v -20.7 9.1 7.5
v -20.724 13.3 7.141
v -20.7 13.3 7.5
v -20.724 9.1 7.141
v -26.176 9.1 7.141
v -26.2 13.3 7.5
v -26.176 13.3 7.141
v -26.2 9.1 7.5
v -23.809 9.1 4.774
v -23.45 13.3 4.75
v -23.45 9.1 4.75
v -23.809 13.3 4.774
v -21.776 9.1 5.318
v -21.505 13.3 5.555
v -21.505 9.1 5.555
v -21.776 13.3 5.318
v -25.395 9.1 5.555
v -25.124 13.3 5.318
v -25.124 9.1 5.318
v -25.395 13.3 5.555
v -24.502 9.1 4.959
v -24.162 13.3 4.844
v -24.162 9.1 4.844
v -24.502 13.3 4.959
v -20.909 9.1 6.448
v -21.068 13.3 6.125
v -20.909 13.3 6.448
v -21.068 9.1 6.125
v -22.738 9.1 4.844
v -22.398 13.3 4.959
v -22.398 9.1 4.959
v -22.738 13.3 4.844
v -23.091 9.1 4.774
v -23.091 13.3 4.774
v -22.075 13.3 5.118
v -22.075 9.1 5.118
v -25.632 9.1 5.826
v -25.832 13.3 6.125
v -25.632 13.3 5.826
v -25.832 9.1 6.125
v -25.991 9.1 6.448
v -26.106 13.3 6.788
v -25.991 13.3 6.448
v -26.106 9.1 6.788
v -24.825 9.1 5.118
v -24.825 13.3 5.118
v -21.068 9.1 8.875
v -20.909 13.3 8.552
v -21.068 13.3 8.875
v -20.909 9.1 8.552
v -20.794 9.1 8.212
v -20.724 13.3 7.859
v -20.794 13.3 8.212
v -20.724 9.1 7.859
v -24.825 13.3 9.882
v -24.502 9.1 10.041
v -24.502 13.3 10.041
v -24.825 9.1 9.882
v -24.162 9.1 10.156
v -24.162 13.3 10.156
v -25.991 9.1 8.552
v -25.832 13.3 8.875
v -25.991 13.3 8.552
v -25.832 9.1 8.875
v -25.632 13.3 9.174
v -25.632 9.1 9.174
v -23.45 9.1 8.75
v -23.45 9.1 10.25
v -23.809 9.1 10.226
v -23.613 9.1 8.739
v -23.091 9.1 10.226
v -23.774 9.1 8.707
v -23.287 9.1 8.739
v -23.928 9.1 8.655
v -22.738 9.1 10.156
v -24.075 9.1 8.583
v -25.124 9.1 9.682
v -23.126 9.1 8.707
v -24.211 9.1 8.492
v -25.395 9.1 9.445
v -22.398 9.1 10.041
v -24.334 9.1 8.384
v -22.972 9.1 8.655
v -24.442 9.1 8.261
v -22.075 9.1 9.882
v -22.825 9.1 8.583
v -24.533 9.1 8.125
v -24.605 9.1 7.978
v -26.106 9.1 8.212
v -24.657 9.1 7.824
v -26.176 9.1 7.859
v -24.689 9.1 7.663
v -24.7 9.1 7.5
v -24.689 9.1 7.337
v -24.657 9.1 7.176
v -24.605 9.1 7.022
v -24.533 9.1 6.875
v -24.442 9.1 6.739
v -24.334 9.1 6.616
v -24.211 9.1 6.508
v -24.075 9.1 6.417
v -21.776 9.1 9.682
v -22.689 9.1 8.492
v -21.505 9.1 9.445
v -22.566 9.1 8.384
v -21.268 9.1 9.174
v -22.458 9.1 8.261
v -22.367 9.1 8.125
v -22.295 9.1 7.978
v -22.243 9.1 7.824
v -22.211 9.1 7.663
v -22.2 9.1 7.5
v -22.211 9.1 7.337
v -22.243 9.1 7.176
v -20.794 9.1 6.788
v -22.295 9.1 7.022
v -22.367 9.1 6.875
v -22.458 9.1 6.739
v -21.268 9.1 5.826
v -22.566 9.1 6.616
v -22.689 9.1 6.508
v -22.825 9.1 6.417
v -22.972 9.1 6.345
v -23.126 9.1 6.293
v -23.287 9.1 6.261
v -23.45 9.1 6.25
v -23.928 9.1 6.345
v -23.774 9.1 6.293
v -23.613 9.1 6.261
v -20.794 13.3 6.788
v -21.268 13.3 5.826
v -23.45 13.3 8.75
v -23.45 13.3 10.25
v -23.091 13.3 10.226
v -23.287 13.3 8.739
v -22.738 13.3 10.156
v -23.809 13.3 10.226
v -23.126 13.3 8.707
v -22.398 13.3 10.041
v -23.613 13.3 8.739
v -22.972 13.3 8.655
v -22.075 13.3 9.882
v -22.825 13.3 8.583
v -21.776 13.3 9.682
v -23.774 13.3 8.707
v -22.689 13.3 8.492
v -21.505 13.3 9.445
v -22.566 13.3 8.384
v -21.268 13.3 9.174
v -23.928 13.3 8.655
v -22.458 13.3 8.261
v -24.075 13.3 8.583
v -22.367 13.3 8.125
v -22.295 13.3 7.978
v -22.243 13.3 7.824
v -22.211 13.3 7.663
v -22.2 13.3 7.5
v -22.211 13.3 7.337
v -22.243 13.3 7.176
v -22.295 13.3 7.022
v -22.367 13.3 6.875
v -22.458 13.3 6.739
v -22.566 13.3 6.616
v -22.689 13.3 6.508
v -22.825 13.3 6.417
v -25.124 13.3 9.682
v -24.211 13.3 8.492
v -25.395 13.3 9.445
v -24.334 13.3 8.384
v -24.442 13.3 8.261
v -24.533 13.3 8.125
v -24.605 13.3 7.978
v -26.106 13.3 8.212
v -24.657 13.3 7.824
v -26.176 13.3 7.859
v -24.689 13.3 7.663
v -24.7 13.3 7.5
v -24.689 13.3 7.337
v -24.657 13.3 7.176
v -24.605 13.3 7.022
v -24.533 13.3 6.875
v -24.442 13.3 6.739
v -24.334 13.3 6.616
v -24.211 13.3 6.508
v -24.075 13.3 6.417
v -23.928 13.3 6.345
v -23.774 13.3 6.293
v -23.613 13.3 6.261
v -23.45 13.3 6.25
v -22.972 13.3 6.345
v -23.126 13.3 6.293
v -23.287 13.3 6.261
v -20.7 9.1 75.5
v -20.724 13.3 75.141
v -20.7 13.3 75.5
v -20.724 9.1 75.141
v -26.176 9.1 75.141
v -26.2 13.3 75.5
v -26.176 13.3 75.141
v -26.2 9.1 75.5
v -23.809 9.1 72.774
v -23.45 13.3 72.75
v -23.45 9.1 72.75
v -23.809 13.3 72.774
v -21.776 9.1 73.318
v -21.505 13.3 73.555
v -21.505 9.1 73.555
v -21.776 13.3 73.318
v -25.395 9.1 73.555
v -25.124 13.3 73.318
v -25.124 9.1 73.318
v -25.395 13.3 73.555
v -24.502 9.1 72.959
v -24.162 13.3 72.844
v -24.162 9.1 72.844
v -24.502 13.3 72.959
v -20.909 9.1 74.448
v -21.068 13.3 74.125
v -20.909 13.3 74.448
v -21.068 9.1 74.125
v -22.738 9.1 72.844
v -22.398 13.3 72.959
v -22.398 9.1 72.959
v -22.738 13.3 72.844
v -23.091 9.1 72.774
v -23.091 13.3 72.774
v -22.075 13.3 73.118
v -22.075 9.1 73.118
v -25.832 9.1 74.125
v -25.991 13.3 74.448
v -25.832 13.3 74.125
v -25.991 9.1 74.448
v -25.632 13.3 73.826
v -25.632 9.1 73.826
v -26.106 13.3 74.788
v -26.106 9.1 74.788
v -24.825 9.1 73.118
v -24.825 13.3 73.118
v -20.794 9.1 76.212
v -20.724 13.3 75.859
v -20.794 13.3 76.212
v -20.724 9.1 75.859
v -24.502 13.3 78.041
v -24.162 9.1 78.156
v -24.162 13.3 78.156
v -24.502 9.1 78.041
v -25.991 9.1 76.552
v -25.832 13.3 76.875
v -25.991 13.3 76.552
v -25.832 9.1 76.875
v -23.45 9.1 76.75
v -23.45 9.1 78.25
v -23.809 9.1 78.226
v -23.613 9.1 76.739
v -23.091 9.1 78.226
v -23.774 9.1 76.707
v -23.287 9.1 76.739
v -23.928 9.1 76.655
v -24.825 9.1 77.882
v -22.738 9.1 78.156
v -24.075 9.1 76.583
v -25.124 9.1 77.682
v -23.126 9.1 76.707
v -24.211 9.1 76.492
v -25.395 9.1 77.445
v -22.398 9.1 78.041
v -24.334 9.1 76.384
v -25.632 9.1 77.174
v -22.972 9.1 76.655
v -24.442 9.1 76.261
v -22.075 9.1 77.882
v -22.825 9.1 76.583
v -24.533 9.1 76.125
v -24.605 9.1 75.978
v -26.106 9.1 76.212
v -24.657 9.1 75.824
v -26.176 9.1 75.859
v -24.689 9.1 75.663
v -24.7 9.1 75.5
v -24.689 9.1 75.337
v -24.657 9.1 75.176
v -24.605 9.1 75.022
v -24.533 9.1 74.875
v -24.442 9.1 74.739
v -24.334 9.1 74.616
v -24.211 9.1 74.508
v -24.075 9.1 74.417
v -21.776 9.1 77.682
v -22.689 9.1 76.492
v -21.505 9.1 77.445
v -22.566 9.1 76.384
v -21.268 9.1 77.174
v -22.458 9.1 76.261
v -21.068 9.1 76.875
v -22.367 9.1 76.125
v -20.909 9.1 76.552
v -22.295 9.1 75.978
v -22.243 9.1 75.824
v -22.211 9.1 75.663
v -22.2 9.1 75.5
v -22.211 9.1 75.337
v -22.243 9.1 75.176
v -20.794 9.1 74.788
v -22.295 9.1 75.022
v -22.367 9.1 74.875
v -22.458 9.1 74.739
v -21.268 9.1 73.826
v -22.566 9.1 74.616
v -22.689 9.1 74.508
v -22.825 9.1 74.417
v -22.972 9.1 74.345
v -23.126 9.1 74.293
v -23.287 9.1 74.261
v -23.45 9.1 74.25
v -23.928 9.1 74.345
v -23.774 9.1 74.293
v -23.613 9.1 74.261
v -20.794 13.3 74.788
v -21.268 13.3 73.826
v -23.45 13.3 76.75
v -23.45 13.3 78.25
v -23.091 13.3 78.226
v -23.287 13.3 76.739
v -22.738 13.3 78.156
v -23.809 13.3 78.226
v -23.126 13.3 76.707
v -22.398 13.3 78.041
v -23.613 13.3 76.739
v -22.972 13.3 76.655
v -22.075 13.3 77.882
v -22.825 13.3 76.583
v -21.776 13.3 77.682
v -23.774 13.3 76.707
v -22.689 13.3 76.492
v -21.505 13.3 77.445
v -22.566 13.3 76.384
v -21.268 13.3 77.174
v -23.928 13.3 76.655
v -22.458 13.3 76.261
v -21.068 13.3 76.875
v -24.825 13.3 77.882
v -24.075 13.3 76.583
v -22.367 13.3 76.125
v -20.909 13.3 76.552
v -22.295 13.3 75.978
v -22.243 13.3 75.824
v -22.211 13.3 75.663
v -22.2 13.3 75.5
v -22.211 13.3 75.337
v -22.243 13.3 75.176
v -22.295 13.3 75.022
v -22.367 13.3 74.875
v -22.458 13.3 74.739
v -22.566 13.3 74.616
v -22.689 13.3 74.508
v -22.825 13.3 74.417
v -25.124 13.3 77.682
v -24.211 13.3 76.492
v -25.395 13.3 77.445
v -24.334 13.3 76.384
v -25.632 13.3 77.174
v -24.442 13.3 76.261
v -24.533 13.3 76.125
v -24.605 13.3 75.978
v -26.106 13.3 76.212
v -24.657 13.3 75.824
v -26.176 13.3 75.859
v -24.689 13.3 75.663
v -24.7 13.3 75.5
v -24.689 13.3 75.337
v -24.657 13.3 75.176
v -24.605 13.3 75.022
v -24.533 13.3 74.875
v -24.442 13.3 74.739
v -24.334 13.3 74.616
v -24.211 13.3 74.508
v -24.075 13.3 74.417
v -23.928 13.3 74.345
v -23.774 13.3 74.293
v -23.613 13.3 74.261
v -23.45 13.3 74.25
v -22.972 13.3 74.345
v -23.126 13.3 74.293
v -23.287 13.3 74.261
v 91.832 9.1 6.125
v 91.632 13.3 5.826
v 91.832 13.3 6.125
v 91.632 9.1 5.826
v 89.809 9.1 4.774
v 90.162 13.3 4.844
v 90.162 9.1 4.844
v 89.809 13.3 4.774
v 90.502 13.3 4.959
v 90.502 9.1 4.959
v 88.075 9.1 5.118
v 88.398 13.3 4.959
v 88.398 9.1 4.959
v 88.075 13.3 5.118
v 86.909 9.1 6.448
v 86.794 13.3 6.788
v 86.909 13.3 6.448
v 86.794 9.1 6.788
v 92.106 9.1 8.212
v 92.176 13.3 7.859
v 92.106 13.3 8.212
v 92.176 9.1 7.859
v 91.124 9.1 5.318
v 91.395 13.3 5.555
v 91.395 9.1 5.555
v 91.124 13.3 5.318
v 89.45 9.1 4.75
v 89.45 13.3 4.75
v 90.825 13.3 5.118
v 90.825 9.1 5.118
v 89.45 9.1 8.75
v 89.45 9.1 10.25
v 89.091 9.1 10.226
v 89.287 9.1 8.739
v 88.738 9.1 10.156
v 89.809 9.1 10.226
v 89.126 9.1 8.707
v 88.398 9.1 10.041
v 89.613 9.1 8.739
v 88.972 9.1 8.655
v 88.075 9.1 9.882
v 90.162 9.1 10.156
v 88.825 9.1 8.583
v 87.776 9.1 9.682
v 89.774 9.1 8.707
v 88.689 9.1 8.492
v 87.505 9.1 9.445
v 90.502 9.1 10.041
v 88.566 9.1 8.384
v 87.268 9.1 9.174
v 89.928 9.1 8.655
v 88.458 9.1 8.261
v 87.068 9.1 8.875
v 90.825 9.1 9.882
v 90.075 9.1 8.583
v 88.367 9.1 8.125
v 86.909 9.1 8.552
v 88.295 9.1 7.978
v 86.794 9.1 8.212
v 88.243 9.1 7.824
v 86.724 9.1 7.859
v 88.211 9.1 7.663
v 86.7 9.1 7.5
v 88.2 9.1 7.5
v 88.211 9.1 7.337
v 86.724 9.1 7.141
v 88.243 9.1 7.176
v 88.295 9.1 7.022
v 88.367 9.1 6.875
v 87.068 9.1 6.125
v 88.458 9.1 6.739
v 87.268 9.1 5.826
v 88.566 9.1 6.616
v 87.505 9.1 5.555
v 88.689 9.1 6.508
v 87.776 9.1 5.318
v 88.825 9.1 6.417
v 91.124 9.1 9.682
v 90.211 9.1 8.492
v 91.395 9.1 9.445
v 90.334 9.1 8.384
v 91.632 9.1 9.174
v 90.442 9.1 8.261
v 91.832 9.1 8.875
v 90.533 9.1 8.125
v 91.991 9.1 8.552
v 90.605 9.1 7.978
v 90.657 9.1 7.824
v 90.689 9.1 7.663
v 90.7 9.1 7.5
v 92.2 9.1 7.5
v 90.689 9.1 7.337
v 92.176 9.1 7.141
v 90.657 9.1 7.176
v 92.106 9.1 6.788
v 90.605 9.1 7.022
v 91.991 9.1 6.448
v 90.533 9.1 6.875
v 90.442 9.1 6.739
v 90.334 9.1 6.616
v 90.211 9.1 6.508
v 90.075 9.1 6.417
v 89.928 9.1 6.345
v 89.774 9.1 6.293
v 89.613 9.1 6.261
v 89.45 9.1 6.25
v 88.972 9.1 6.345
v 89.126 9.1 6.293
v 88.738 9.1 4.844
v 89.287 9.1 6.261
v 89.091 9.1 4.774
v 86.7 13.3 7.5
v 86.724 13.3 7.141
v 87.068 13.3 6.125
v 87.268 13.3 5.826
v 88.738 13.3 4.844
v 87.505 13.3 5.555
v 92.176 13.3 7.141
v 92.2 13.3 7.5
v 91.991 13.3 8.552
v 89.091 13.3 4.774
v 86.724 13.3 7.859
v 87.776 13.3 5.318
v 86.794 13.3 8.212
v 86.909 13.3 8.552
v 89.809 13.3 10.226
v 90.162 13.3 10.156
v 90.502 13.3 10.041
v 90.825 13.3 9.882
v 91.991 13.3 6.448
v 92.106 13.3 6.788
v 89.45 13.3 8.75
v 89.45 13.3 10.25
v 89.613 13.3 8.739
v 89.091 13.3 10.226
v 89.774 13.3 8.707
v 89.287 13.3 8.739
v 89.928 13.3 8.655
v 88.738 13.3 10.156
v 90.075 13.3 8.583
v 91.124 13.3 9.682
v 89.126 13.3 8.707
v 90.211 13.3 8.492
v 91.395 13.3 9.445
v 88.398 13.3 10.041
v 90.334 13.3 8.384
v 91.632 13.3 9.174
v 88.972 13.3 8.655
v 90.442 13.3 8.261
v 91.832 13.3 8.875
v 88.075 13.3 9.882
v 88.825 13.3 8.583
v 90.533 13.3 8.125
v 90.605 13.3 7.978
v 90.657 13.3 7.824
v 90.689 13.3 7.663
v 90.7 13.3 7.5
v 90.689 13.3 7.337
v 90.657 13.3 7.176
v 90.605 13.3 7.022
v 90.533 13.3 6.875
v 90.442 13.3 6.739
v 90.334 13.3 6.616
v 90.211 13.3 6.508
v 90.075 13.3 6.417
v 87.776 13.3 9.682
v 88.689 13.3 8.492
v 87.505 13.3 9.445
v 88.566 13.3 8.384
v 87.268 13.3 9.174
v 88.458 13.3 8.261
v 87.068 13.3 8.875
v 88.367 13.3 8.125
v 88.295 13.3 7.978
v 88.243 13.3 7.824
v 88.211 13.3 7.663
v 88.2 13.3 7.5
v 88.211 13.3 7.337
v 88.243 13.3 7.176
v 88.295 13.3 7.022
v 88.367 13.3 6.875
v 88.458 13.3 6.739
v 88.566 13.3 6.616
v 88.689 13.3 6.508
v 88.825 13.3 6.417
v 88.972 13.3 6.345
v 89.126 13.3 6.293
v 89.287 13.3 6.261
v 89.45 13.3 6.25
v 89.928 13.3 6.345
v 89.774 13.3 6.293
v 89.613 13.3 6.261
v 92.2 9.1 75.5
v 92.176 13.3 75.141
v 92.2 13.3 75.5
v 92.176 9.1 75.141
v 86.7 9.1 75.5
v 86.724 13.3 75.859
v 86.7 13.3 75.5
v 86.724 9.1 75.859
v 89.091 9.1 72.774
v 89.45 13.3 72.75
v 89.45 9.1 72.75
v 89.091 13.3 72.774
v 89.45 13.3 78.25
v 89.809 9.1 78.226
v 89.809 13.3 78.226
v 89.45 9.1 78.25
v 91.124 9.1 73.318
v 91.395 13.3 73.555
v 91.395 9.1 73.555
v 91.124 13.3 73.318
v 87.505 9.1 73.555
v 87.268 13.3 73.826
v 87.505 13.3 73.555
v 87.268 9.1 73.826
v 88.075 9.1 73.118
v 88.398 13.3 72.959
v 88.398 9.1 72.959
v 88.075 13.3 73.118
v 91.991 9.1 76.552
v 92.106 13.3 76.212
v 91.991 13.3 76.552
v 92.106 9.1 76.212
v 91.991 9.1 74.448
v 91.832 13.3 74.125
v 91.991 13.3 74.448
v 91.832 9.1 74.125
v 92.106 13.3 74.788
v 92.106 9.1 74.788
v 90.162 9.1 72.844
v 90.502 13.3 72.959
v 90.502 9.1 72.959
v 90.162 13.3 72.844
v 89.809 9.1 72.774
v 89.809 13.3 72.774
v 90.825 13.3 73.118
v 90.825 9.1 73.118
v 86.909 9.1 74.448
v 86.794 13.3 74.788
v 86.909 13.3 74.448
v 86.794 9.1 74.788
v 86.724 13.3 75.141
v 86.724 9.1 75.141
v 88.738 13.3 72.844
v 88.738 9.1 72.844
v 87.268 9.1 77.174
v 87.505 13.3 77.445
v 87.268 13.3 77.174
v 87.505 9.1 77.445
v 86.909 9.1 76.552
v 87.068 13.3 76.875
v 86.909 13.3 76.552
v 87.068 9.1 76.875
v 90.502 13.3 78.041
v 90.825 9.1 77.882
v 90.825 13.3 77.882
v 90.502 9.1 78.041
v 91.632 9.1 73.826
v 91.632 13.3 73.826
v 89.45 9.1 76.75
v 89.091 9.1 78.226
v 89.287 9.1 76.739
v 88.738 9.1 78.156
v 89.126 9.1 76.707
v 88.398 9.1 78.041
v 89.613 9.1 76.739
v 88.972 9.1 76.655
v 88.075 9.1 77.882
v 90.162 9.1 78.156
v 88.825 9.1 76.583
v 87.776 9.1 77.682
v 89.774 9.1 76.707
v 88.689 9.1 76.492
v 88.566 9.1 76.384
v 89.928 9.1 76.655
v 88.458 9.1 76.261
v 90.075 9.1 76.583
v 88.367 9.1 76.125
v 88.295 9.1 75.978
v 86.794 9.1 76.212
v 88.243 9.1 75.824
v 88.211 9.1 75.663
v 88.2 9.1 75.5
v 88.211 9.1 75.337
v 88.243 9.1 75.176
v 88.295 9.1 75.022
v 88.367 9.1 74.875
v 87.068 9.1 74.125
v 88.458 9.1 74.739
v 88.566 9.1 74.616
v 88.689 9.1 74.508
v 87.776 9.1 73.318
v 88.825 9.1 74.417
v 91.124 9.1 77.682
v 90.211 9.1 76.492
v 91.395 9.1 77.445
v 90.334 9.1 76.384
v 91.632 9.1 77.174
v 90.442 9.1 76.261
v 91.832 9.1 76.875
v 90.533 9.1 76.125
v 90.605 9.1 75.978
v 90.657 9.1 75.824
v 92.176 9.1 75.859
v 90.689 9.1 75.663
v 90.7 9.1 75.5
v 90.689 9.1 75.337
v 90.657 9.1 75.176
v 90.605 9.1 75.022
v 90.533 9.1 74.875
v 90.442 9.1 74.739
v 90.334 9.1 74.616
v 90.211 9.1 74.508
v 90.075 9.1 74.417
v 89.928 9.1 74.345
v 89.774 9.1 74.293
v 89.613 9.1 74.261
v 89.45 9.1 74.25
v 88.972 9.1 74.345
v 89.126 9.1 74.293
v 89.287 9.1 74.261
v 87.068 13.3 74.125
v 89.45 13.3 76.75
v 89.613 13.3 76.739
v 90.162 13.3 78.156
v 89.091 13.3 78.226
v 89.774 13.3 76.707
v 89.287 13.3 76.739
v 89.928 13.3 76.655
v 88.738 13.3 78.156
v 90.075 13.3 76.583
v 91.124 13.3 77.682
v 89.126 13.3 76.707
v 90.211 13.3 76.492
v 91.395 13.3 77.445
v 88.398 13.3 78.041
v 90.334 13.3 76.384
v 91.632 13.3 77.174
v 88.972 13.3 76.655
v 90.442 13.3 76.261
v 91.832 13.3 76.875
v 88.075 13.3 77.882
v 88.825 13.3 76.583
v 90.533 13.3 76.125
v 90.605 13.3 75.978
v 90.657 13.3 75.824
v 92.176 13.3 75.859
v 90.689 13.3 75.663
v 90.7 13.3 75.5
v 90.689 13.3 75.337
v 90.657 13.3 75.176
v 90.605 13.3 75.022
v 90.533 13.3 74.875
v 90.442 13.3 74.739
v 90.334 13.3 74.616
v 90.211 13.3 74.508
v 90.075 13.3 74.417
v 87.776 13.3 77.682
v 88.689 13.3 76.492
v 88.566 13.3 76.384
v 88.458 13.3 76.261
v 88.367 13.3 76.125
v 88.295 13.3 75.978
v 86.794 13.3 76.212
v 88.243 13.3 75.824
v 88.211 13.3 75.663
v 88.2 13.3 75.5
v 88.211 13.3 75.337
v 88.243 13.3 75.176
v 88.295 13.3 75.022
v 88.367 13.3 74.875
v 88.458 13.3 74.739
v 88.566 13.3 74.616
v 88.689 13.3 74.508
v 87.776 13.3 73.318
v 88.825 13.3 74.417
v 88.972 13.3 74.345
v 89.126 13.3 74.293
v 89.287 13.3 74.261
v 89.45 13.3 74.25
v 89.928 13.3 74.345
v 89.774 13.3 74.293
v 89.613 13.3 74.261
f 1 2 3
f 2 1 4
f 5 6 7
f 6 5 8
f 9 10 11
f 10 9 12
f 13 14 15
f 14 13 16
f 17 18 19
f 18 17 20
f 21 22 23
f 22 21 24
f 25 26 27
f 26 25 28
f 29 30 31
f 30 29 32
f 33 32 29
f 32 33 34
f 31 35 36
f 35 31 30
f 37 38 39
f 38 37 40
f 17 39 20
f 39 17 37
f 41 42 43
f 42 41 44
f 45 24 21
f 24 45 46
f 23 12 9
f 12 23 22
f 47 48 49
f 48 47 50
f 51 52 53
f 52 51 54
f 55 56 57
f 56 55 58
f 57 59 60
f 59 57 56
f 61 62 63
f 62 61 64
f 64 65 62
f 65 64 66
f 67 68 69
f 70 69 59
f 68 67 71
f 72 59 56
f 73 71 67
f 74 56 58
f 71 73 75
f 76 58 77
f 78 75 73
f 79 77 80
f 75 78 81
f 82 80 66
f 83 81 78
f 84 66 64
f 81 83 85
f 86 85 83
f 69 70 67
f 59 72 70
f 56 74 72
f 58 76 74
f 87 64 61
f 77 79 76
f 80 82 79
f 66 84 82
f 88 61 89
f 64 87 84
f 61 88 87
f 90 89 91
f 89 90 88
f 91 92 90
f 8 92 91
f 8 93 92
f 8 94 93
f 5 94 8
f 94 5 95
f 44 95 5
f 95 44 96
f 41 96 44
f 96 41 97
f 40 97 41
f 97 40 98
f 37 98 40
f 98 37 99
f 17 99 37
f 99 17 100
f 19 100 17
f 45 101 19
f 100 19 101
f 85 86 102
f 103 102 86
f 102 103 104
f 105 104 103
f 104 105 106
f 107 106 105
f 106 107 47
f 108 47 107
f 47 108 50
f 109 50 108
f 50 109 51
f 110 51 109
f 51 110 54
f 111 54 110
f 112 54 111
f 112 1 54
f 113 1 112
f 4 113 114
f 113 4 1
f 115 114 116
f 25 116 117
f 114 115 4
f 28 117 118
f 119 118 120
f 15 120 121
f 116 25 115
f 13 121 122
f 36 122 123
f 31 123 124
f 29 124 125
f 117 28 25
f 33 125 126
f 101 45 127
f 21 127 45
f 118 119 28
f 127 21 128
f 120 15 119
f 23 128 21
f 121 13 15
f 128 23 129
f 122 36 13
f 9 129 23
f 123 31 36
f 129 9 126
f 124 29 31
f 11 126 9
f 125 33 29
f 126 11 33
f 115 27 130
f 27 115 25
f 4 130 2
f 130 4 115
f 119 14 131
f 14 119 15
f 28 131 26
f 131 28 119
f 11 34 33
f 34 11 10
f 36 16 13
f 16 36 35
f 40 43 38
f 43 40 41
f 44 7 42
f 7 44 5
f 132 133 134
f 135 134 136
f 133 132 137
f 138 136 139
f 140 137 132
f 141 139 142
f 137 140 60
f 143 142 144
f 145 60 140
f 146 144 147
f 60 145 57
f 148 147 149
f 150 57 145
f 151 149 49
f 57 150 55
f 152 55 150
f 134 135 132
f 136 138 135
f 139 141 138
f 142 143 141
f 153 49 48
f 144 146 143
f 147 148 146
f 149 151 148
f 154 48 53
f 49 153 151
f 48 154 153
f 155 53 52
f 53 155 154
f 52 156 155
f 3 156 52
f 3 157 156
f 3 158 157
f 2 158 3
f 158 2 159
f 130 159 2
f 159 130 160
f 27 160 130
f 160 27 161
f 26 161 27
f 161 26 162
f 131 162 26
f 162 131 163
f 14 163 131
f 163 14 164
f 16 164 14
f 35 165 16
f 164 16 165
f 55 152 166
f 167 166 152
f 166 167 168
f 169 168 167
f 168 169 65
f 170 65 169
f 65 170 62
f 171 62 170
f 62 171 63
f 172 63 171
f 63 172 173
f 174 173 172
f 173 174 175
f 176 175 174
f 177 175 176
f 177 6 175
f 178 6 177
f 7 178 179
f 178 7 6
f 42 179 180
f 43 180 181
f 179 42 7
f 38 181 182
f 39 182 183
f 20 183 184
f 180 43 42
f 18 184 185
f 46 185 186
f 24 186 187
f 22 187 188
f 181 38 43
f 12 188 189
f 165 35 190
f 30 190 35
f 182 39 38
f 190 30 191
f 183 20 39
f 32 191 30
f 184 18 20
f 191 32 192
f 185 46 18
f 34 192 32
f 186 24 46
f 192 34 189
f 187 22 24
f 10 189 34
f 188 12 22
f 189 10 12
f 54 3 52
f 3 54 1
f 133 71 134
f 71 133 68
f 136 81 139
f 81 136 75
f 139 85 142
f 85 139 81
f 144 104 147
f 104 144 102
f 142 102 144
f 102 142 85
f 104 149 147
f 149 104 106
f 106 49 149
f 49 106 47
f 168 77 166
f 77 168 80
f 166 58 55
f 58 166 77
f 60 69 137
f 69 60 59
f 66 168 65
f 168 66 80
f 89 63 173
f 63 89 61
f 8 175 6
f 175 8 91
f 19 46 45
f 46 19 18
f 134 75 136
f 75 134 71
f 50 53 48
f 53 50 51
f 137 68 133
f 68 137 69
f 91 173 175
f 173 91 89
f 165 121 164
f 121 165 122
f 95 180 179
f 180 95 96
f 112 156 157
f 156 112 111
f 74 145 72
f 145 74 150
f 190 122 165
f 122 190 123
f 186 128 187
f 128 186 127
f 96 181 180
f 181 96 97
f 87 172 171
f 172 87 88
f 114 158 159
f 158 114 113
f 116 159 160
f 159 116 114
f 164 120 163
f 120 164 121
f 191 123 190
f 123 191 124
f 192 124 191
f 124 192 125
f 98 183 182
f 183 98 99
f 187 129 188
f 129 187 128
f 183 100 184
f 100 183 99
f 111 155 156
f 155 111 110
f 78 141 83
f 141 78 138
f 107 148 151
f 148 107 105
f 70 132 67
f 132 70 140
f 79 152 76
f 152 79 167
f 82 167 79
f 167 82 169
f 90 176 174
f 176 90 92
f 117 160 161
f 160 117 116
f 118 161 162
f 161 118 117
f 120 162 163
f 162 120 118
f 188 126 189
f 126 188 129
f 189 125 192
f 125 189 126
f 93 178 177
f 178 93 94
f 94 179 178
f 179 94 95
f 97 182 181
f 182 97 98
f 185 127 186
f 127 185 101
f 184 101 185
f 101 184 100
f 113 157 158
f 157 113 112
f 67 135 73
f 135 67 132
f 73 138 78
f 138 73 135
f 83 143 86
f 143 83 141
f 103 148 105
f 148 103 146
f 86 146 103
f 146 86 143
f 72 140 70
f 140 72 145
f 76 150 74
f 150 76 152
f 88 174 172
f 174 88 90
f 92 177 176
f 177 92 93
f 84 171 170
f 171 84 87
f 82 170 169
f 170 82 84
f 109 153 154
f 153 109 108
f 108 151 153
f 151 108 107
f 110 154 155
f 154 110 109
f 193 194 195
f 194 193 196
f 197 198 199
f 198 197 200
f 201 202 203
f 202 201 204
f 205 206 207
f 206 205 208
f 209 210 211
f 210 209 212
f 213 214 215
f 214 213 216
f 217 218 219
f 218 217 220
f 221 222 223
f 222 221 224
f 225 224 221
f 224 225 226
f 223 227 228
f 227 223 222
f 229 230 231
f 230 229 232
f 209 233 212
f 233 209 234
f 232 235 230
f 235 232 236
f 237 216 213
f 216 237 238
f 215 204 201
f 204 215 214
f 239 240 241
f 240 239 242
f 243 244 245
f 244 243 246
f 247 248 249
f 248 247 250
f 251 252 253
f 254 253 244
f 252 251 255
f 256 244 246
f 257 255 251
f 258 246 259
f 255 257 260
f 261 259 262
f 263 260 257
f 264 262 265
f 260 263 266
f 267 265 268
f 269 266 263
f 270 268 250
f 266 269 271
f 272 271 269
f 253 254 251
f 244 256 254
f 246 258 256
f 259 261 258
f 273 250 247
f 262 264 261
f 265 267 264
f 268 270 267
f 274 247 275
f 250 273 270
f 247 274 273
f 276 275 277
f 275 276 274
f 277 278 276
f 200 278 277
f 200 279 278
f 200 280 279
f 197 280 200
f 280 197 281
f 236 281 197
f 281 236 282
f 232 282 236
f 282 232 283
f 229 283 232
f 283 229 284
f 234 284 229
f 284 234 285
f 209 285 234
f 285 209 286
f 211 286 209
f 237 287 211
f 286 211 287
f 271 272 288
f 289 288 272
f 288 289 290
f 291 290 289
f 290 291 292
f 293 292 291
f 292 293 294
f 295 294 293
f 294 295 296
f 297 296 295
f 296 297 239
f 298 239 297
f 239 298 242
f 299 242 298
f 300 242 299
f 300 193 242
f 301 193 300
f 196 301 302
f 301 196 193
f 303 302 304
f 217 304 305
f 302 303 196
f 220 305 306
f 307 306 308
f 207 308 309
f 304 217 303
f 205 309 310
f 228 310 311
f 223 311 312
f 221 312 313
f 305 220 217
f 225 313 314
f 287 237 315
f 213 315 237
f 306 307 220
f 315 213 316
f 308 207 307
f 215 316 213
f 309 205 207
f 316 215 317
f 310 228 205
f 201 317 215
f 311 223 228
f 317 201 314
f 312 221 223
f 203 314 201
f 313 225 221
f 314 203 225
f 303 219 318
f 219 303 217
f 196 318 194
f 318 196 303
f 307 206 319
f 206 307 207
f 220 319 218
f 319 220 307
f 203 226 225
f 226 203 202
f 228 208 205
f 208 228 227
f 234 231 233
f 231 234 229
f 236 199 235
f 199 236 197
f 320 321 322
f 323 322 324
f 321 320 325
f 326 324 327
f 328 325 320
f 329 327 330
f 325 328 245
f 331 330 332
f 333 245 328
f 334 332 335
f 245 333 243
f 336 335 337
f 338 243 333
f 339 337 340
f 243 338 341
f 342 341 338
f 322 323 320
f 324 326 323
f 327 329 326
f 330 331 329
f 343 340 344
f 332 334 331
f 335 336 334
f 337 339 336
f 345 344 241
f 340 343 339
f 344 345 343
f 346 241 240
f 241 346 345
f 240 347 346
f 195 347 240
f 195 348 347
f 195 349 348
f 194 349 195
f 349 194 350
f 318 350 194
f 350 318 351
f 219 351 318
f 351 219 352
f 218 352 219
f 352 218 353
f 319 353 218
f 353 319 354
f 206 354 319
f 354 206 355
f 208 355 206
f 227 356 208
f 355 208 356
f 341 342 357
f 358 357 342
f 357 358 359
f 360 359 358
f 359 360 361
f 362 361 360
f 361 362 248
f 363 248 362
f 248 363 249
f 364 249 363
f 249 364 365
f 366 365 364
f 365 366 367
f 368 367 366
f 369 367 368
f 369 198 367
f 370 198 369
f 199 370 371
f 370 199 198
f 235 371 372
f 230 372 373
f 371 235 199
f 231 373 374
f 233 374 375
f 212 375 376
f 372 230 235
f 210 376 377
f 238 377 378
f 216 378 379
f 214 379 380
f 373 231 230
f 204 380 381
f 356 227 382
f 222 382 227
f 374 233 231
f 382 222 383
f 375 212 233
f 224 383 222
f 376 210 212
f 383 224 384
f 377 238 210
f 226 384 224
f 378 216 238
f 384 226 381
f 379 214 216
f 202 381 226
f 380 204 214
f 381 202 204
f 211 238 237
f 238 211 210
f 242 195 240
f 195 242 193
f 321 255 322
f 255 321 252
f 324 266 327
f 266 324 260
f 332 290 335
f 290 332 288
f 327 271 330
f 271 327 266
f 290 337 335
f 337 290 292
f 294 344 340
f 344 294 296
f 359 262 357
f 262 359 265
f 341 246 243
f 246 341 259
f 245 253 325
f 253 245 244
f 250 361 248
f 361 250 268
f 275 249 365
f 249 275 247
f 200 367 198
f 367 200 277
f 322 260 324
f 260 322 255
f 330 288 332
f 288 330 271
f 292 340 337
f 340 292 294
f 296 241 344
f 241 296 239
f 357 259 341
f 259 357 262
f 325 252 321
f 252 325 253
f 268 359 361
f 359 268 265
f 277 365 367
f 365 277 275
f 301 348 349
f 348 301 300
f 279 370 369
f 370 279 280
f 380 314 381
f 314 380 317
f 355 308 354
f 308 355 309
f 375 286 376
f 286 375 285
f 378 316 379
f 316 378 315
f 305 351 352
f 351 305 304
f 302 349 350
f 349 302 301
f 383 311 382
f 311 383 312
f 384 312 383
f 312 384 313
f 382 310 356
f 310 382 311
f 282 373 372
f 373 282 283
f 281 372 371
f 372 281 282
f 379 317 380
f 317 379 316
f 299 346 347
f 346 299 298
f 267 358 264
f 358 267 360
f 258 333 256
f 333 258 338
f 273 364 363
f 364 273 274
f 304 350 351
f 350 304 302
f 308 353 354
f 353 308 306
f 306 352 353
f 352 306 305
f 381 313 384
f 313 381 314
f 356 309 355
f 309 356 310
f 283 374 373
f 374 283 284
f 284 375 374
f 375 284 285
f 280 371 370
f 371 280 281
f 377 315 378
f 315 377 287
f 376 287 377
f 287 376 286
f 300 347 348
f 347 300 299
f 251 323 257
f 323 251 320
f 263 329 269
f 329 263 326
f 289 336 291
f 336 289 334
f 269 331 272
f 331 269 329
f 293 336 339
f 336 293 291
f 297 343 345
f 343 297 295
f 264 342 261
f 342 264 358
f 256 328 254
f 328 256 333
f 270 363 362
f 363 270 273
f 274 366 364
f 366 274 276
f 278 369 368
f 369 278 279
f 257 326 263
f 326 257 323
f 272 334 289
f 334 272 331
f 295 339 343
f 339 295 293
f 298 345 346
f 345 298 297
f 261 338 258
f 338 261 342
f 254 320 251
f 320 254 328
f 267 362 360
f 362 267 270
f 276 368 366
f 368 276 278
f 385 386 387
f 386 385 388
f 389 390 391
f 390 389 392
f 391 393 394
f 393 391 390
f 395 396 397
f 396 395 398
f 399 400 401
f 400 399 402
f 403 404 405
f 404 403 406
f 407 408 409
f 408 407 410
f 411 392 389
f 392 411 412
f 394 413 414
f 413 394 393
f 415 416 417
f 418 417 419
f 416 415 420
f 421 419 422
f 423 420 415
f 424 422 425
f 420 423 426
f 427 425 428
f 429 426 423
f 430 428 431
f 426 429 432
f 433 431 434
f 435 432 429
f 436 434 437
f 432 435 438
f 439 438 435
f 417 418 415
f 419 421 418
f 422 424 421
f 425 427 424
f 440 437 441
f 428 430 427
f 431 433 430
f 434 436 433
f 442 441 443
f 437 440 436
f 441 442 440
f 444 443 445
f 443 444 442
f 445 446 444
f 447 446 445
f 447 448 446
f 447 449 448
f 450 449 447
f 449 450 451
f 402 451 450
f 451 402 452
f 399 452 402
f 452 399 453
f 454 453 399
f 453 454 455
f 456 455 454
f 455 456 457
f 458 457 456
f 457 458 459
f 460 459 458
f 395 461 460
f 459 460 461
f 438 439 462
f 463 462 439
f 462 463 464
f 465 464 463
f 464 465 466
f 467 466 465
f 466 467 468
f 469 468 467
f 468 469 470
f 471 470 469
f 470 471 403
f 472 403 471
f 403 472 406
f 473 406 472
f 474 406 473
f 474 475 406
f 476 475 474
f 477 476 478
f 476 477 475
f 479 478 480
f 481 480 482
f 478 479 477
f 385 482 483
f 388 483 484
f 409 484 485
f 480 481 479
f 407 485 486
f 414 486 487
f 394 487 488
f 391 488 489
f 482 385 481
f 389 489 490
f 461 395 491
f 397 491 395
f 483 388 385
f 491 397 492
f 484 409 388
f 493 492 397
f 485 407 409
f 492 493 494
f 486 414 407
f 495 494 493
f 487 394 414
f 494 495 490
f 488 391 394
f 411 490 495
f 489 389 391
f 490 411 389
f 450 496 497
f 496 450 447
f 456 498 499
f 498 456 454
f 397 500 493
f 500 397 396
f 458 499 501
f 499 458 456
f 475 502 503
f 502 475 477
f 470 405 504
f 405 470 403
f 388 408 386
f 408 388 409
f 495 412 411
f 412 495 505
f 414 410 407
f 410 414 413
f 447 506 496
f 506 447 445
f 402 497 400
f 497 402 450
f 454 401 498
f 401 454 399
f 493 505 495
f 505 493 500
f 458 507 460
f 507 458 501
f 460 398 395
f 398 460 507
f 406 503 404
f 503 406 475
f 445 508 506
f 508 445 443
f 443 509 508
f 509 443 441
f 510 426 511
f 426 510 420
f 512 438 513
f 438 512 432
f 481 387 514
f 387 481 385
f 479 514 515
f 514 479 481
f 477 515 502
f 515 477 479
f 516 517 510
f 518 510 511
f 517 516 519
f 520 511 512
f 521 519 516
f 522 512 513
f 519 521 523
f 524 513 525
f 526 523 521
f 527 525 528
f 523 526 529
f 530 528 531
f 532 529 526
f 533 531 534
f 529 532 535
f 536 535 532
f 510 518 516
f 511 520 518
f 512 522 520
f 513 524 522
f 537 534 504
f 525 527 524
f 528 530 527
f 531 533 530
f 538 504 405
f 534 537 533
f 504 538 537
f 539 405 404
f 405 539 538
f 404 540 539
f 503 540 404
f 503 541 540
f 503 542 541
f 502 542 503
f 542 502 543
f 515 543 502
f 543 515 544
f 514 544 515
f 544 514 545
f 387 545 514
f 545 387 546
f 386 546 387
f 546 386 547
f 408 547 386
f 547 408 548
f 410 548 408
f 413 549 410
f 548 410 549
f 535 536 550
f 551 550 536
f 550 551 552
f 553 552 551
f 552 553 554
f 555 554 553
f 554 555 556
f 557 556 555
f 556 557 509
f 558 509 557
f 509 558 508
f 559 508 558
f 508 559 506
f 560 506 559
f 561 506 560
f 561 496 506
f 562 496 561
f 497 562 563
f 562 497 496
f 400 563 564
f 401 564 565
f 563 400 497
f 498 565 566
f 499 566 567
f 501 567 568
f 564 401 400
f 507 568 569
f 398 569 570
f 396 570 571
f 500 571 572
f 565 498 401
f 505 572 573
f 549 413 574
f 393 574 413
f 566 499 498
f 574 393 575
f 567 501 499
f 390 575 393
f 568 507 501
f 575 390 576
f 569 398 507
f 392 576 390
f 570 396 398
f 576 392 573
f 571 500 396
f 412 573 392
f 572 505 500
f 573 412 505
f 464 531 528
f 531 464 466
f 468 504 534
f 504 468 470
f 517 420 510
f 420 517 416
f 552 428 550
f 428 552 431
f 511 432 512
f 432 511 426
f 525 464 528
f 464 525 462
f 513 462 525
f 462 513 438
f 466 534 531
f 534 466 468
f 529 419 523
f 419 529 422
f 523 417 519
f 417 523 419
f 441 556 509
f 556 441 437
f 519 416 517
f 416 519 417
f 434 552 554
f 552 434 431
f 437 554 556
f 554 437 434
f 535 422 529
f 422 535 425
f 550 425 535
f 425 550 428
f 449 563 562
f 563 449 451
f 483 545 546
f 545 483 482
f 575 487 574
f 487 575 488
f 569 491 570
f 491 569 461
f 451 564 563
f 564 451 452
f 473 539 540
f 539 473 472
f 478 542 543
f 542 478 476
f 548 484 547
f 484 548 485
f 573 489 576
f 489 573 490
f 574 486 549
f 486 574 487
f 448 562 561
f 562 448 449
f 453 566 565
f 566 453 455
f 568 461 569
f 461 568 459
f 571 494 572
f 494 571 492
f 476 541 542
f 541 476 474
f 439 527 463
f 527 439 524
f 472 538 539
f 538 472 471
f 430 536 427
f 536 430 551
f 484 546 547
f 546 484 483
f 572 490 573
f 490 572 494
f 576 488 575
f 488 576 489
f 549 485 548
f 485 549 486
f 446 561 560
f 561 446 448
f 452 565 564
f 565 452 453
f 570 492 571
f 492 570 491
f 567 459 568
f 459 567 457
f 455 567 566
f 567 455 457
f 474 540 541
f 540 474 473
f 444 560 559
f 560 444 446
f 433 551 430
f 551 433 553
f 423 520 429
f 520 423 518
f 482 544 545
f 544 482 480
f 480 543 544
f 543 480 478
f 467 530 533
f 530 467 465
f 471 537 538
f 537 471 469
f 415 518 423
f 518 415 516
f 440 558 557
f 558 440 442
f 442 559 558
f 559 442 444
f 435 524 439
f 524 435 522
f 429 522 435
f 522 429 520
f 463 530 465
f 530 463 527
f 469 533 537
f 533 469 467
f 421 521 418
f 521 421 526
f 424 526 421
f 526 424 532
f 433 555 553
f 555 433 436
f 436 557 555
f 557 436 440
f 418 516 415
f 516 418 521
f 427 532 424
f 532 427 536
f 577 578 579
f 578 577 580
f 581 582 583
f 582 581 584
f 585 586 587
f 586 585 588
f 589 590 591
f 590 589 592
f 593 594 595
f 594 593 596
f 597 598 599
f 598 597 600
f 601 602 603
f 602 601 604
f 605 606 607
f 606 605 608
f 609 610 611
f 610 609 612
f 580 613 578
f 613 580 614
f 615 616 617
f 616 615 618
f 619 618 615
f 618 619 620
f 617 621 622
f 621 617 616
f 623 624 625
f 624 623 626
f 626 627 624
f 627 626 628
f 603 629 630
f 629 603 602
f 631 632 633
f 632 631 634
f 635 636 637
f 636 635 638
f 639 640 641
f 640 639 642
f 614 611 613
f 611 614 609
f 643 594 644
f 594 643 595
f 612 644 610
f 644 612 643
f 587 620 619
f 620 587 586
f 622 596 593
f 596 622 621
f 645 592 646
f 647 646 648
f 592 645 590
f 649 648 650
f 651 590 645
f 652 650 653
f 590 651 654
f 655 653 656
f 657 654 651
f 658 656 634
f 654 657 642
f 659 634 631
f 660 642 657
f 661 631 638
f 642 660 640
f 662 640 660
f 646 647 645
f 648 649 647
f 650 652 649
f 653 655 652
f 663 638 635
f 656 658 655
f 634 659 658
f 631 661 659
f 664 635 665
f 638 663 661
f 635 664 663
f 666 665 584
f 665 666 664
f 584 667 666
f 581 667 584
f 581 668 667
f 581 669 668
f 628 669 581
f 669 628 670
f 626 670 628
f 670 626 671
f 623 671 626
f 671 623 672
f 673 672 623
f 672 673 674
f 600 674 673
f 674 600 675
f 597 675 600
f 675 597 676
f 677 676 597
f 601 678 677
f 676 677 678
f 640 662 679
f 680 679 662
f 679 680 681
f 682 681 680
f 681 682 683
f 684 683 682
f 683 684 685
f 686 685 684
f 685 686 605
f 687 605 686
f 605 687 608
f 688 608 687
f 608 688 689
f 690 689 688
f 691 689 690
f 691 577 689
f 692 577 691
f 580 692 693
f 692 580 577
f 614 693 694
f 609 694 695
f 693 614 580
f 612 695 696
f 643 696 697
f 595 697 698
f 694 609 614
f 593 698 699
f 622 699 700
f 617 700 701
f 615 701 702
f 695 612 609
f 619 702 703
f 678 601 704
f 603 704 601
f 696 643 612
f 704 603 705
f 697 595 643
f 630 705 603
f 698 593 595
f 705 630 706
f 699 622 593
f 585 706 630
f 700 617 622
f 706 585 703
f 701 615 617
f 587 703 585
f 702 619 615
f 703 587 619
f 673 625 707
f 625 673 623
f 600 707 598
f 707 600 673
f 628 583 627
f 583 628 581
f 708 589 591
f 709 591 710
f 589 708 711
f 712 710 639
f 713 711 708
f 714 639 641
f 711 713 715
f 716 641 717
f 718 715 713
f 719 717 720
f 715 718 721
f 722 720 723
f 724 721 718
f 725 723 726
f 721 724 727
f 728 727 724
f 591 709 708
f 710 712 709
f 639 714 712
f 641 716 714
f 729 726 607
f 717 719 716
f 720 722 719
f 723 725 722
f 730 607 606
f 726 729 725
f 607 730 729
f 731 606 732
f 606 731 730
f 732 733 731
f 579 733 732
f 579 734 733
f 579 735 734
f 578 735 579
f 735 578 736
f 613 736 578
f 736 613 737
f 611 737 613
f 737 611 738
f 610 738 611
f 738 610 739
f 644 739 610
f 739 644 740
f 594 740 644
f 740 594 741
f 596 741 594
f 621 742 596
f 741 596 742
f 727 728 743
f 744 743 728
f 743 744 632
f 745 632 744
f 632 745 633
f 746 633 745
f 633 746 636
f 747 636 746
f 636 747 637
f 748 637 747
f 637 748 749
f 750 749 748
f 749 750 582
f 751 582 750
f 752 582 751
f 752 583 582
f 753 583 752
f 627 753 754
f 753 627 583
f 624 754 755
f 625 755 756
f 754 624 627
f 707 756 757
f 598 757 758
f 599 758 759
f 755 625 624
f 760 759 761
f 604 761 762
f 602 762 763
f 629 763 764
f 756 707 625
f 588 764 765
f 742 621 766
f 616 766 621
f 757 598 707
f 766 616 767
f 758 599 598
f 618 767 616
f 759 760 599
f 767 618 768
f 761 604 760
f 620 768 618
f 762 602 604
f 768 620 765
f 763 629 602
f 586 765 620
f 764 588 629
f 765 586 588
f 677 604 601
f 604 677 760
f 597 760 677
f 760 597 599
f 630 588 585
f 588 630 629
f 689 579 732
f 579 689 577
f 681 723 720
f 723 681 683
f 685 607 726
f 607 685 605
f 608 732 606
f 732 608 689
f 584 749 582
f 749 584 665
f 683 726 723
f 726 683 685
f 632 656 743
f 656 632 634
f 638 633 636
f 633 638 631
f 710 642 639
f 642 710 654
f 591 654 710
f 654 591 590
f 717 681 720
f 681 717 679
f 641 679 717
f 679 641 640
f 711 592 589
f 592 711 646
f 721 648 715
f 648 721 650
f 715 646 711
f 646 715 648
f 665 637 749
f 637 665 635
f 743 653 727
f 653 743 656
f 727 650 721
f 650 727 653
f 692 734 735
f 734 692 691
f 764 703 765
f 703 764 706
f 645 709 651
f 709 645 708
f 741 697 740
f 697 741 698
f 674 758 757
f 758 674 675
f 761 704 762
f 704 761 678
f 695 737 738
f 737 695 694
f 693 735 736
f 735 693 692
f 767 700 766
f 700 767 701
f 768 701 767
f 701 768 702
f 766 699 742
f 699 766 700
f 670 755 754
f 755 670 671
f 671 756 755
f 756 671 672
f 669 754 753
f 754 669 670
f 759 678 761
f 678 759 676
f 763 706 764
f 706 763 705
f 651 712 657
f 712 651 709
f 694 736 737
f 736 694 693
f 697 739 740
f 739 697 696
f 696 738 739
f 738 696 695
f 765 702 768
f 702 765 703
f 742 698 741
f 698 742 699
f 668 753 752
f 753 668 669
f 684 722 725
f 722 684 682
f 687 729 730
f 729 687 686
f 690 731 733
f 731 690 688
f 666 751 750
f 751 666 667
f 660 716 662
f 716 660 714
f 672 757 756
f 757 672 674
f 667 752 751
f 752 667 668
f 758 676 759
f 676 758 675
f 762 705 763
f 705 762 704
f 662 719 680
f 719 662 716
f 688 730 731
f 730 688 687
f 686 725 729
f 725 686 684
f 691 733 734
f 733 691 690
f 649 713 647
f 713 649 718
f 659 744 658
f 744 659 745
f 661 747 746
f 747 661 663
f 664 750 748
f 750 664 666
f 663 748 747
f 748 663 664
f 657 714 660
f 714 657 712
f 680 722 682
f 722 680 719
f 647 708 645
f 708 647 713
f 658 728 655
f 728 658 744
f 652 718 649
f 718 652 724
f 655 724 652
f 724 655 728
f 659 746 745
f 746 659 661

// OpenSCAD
// file: D:/Projects/assembly-workshop/outputs/Screen_Pi_Hue_SCR5-H8_2026-10-31/checks/geometry.scad
// SCR5-G; mm; FRONT view: X right, Z up, Y into rack. Glass/plate front Y=0.
// Measured values: work/screen-5in/Dimensions.md. Physical fit/strength UNKNOWN.
part="plate";
DROP=0.45; // coupon winner can be substituted here; all three pins use this DROP
LIP=0.8; LIP_ON=true;
LIP_EDGES=[true,true,false,false]; // left,right,bottom,top; Brian: side lips only, cosmetic
FRAME_STEP=1.5; // measured glass-edge inset to metal LCD frame, left/right only
SHIM=0; // moves rear frame seat and plate-boss mating face back
$fn=48;
GCX=33; GCZ=41.5; PW=252; PH=88.8; PT=4;
GW=120.7; GH=77.2; CLEAR=0.2; WW=GW+2*CLEAR; WH=GH+2*CLEAR;
SEAT=13.3+SHIM; FT=3;
SO=[56.45,34]; BTN_X=[45.5,35.5,25.5];
PCB_TOP=38; GAP=0.10; LEAF_T=0.8;
HOLE=[3.4,40.3,44.7];
BX=[GCX-68,GCX+68]; BZ=[10,72];
// DSI connector X extent is unmeasured: conservative assumed 8 mm inward from PCB edge.
DSI=[GCX-60.5,9.1,GCZ-38+30,8,5.25,21];
module xz(y,d){translate([0,y+d,0])rotate([90,0,0])linear_extrude(d)children();}
// rr/rack_slots copied from SCR5-F; same exact slot centres, outline shifted -0.05 Z to centre 44.4.
module rr(w,h,r){hull()for(x=[-w/2+r,w/2-r],z=[-h/2+r,h/2-r])translate([x,z])circle(r=r);}
module rack_slots(){for(x=[-118.2625,118.2625],z=[6.323,38.127,50.773,82.577])translate([x,z])hull()for(dx=[-1.5,1.5])translate([dx,0])circle(d=7);}
module cyl_y(x,y,z,d,h){translate([x,y,z])rotate([-90,0,0])cylinder(d=d,h=h);}
module window_cut(){
  xz(-0.02,4.04)translate([GCX,GCZ])square([WW,WH],center=true);
  // 0.3 x 45-degree chamfer, square corners, front only.
  translate([GCX,0.3,GCZ])rotate([90,0,0])
    linear_extrude(height=0.3,scale=[(WW+0.6)/WW,(WH+0.6)/WH])square([WW,WH],center=true);
}
module lips(){
  // Cosmetic side ledges only; rear frame/standoffs set depth and retain the screen.
  if(LIP_ON)for(i=[0:3])if(LIP_EDGES[i]){
    if(i<2)translate([GCX+(i==0?-WW/2:WW/2-LIP),2.5,GCZ-GH/2+4])cube([LIP,0.8,GH-8]);
    else translate([GCX-GW/2+4,2.5,GCZ+(i==2?-WH/2:WH/2-LIP)])cube([GW-8,0.8,LIP]);
  }
}
// Leaf/nub/bump geometry copied from SCR5-WP-A, translated to this glass centre.
module leaves(){for(x=BTN_X)translate([GCX+x-1.5,0,GCZ]){
  translate([0,0,PCB_TOP+GAP+0.9+0.1])cube([3,11.8,LEAF_T]);
  translate([0,10.2,PCB_TOP+GAP])cube([3,1.4,1.0+LEAF_T/2]);
  translate([0,10.4,PCB_TOP+GAP+1.0+LEAF_T])cube([3,1.0,0.9]);
}}
module plate(){difference(){union(){
  difference(){xz(0,PT)translate([0,PH/2])rr(PW,PH,2.5);window_cut();}
  for(x=BX,z=BZ)cyl_y(x,3.9,z,8,SEAT-3.9);
  leaves(); lips();
 }
 xz(-0.02,4.04)rack_slots();
 for(x=BTN_X)translate([GCX+x-HOLE[0]/2,-0.02,GCZ+HOLE[1]])cube([HOLE[0],SEAT+FT+0.04,HOLE[2]-HOLE[1]]);
 // Printed-in screw pilots (no heat-set OD assumption): nominal M2.5, fit UNKNOWN.
 for(x=BX,z=BZ)cyl_y(x,SEAT-6,z,2.1,6.02);
 // Rear engraving, 0.5 deep, left field.
 xz(3.5,0.52)translate([-75,40])mirror([1,0])text("SCR5-G",size=6,halign="center",font="Liberation Sans:style=Bold");
}}
module frame_blank(){
  // C-shaped perimeter; no material across the board centre / touch FPC.
  xz(SEAT,FT)translate([GCX,GCZ])difference(){square([132,76],center=true);square([116,60],center=true);}
  for(sx=[-1,1],sz=[-1,1])cyl_y(GCX+sx*SO[0],SEAT,GCZ+sz*SO[1],9,FT);
  for(x=BX,z=BZ)hull(){cyl_y(x,SEAT,z,8,FT);cyl_y(GCX+(x<GCX?-62:62),SEAT,z,8,FT);}
}
module dsi_keepout(){translate([DSI[0]-3,DSI[1]-3,DSI[2]-3])cube([DSI[3]+6,DSI[4]+6,DSI[5]+6]);}
module ribbon_route(){
  // Open left/up corridor 18 mm wide; extends past top of plate.
  translate([GCX-84,6.1,GCZ-11])cube([18,24,65]);
  translate([GCX-84,6.1,GCZ-11])cube([32,24,27]);
}
module frame(){difference(){frame_blank();dsi_keepout();ribbon_route();
 for(sx=[-1,1],sz=[-1,1])cyl_y(GCX+sx*SO[0],SEAT-0.02,GCZ+sz*SO[1],2.8,FT+0.04);
 for(x=BX,z=BZ)cyl_y(x,SEAT-0.02,z,2.8,FT+0.04);
}}
// Pin polygon/cap/notch/dot design copied unchanged from SCR5-WP-A.
module pin(d,dots){s=2*d+0.5;difference(){union(){
 translate([-1.5,0,0])rotate([90,0,90])linear_extrude(3)polygon([
 [-s-0.02,40.5],[10.2,40.5],[10.2,41.0],[11.5,41.0],[11.5+2*d,41.0-d],[15,41.0-d],[15,44.5],[-s-0.02,44.5]]);
 translate([-2.5,-s-1.5,39.6])cube([5,1.5,5.8]);
 }for(i=[0:dots-1])translate([(i-(dots-1)/2)*1.4,-s-1.5-0.01,43.5])rotate([-90,0,0])cylinder(d=0.9,h=0.4);}}
module placed_pin(i){translate([GCX+BTN_X[i],0,GCZ])pin(DROP,i+1);}
// Measured layers: cover glass 0.9 + second glass 1.6, metal frame 3.0,
// open gap 2.0, PCB 1.6. Metal frame inset ~1.5 at LEFT/RIGHT only.
// PCB centred under glass and full metal-frame top/bottom extent remain UNKNOWN.
module glass(){translate([GCX-GW/2,0,GCZ-GH/2])cube([GW,2.5,GH]);}
module lcd(){
  translate([GCX-GW/2+FRAME_STEP,2.5,GCZ-GH/2])cube([GW-2*FRAME_STEP,3.0,GH]);
}
module pcb(){translate([GCX-60.5,7.5,GCZ-38])cube([121,1.6,76]);}
module standoffs(){for(sx=[-1,1],sz=[-1,1])difference(){cyl_y(GCX+sx*SO[0],9.1,GCZ+sz*SO[1],5.5,4.2);cyl_y(GCX+sx*SO[0],9.08,GCZ+sz*SO[1],2.5,4.24);}}
module buttons(){for(x=BTN_X){
 translate([GCX+x-3.5,9.1,GCZ+38-3.4])cube([7,3.6,2.4]);
 translate([GCX+x-1.5,9.1,GCZ+37])cube([3,3.6,1]);
}}
module dsi(){translate([DSI[0],DSI[1],DSI[2]])cube([DSI[3],DSI[4],DSI[5]]);}
module touch(){translate([GCX-10,9.1,GCZ-5])cube([20,2,10]);} // lateral extent unmeasured
module dummy(){glass();lcd();pcb();standoffs();buttons();dsi();touch();}
module assembly(){color("gray")plate();color("orange")frame();for(i=[0:2])color("cyan")placed_pin(i);color([0.2,0.3,0.4,0.4])dummy();}
// main file
include <D:/Projects/assembly-workshop/outputs/Screen_Pi_Hue_SCR5-H8_2026-10-31/checks/geometry.scad>
standoffs();
